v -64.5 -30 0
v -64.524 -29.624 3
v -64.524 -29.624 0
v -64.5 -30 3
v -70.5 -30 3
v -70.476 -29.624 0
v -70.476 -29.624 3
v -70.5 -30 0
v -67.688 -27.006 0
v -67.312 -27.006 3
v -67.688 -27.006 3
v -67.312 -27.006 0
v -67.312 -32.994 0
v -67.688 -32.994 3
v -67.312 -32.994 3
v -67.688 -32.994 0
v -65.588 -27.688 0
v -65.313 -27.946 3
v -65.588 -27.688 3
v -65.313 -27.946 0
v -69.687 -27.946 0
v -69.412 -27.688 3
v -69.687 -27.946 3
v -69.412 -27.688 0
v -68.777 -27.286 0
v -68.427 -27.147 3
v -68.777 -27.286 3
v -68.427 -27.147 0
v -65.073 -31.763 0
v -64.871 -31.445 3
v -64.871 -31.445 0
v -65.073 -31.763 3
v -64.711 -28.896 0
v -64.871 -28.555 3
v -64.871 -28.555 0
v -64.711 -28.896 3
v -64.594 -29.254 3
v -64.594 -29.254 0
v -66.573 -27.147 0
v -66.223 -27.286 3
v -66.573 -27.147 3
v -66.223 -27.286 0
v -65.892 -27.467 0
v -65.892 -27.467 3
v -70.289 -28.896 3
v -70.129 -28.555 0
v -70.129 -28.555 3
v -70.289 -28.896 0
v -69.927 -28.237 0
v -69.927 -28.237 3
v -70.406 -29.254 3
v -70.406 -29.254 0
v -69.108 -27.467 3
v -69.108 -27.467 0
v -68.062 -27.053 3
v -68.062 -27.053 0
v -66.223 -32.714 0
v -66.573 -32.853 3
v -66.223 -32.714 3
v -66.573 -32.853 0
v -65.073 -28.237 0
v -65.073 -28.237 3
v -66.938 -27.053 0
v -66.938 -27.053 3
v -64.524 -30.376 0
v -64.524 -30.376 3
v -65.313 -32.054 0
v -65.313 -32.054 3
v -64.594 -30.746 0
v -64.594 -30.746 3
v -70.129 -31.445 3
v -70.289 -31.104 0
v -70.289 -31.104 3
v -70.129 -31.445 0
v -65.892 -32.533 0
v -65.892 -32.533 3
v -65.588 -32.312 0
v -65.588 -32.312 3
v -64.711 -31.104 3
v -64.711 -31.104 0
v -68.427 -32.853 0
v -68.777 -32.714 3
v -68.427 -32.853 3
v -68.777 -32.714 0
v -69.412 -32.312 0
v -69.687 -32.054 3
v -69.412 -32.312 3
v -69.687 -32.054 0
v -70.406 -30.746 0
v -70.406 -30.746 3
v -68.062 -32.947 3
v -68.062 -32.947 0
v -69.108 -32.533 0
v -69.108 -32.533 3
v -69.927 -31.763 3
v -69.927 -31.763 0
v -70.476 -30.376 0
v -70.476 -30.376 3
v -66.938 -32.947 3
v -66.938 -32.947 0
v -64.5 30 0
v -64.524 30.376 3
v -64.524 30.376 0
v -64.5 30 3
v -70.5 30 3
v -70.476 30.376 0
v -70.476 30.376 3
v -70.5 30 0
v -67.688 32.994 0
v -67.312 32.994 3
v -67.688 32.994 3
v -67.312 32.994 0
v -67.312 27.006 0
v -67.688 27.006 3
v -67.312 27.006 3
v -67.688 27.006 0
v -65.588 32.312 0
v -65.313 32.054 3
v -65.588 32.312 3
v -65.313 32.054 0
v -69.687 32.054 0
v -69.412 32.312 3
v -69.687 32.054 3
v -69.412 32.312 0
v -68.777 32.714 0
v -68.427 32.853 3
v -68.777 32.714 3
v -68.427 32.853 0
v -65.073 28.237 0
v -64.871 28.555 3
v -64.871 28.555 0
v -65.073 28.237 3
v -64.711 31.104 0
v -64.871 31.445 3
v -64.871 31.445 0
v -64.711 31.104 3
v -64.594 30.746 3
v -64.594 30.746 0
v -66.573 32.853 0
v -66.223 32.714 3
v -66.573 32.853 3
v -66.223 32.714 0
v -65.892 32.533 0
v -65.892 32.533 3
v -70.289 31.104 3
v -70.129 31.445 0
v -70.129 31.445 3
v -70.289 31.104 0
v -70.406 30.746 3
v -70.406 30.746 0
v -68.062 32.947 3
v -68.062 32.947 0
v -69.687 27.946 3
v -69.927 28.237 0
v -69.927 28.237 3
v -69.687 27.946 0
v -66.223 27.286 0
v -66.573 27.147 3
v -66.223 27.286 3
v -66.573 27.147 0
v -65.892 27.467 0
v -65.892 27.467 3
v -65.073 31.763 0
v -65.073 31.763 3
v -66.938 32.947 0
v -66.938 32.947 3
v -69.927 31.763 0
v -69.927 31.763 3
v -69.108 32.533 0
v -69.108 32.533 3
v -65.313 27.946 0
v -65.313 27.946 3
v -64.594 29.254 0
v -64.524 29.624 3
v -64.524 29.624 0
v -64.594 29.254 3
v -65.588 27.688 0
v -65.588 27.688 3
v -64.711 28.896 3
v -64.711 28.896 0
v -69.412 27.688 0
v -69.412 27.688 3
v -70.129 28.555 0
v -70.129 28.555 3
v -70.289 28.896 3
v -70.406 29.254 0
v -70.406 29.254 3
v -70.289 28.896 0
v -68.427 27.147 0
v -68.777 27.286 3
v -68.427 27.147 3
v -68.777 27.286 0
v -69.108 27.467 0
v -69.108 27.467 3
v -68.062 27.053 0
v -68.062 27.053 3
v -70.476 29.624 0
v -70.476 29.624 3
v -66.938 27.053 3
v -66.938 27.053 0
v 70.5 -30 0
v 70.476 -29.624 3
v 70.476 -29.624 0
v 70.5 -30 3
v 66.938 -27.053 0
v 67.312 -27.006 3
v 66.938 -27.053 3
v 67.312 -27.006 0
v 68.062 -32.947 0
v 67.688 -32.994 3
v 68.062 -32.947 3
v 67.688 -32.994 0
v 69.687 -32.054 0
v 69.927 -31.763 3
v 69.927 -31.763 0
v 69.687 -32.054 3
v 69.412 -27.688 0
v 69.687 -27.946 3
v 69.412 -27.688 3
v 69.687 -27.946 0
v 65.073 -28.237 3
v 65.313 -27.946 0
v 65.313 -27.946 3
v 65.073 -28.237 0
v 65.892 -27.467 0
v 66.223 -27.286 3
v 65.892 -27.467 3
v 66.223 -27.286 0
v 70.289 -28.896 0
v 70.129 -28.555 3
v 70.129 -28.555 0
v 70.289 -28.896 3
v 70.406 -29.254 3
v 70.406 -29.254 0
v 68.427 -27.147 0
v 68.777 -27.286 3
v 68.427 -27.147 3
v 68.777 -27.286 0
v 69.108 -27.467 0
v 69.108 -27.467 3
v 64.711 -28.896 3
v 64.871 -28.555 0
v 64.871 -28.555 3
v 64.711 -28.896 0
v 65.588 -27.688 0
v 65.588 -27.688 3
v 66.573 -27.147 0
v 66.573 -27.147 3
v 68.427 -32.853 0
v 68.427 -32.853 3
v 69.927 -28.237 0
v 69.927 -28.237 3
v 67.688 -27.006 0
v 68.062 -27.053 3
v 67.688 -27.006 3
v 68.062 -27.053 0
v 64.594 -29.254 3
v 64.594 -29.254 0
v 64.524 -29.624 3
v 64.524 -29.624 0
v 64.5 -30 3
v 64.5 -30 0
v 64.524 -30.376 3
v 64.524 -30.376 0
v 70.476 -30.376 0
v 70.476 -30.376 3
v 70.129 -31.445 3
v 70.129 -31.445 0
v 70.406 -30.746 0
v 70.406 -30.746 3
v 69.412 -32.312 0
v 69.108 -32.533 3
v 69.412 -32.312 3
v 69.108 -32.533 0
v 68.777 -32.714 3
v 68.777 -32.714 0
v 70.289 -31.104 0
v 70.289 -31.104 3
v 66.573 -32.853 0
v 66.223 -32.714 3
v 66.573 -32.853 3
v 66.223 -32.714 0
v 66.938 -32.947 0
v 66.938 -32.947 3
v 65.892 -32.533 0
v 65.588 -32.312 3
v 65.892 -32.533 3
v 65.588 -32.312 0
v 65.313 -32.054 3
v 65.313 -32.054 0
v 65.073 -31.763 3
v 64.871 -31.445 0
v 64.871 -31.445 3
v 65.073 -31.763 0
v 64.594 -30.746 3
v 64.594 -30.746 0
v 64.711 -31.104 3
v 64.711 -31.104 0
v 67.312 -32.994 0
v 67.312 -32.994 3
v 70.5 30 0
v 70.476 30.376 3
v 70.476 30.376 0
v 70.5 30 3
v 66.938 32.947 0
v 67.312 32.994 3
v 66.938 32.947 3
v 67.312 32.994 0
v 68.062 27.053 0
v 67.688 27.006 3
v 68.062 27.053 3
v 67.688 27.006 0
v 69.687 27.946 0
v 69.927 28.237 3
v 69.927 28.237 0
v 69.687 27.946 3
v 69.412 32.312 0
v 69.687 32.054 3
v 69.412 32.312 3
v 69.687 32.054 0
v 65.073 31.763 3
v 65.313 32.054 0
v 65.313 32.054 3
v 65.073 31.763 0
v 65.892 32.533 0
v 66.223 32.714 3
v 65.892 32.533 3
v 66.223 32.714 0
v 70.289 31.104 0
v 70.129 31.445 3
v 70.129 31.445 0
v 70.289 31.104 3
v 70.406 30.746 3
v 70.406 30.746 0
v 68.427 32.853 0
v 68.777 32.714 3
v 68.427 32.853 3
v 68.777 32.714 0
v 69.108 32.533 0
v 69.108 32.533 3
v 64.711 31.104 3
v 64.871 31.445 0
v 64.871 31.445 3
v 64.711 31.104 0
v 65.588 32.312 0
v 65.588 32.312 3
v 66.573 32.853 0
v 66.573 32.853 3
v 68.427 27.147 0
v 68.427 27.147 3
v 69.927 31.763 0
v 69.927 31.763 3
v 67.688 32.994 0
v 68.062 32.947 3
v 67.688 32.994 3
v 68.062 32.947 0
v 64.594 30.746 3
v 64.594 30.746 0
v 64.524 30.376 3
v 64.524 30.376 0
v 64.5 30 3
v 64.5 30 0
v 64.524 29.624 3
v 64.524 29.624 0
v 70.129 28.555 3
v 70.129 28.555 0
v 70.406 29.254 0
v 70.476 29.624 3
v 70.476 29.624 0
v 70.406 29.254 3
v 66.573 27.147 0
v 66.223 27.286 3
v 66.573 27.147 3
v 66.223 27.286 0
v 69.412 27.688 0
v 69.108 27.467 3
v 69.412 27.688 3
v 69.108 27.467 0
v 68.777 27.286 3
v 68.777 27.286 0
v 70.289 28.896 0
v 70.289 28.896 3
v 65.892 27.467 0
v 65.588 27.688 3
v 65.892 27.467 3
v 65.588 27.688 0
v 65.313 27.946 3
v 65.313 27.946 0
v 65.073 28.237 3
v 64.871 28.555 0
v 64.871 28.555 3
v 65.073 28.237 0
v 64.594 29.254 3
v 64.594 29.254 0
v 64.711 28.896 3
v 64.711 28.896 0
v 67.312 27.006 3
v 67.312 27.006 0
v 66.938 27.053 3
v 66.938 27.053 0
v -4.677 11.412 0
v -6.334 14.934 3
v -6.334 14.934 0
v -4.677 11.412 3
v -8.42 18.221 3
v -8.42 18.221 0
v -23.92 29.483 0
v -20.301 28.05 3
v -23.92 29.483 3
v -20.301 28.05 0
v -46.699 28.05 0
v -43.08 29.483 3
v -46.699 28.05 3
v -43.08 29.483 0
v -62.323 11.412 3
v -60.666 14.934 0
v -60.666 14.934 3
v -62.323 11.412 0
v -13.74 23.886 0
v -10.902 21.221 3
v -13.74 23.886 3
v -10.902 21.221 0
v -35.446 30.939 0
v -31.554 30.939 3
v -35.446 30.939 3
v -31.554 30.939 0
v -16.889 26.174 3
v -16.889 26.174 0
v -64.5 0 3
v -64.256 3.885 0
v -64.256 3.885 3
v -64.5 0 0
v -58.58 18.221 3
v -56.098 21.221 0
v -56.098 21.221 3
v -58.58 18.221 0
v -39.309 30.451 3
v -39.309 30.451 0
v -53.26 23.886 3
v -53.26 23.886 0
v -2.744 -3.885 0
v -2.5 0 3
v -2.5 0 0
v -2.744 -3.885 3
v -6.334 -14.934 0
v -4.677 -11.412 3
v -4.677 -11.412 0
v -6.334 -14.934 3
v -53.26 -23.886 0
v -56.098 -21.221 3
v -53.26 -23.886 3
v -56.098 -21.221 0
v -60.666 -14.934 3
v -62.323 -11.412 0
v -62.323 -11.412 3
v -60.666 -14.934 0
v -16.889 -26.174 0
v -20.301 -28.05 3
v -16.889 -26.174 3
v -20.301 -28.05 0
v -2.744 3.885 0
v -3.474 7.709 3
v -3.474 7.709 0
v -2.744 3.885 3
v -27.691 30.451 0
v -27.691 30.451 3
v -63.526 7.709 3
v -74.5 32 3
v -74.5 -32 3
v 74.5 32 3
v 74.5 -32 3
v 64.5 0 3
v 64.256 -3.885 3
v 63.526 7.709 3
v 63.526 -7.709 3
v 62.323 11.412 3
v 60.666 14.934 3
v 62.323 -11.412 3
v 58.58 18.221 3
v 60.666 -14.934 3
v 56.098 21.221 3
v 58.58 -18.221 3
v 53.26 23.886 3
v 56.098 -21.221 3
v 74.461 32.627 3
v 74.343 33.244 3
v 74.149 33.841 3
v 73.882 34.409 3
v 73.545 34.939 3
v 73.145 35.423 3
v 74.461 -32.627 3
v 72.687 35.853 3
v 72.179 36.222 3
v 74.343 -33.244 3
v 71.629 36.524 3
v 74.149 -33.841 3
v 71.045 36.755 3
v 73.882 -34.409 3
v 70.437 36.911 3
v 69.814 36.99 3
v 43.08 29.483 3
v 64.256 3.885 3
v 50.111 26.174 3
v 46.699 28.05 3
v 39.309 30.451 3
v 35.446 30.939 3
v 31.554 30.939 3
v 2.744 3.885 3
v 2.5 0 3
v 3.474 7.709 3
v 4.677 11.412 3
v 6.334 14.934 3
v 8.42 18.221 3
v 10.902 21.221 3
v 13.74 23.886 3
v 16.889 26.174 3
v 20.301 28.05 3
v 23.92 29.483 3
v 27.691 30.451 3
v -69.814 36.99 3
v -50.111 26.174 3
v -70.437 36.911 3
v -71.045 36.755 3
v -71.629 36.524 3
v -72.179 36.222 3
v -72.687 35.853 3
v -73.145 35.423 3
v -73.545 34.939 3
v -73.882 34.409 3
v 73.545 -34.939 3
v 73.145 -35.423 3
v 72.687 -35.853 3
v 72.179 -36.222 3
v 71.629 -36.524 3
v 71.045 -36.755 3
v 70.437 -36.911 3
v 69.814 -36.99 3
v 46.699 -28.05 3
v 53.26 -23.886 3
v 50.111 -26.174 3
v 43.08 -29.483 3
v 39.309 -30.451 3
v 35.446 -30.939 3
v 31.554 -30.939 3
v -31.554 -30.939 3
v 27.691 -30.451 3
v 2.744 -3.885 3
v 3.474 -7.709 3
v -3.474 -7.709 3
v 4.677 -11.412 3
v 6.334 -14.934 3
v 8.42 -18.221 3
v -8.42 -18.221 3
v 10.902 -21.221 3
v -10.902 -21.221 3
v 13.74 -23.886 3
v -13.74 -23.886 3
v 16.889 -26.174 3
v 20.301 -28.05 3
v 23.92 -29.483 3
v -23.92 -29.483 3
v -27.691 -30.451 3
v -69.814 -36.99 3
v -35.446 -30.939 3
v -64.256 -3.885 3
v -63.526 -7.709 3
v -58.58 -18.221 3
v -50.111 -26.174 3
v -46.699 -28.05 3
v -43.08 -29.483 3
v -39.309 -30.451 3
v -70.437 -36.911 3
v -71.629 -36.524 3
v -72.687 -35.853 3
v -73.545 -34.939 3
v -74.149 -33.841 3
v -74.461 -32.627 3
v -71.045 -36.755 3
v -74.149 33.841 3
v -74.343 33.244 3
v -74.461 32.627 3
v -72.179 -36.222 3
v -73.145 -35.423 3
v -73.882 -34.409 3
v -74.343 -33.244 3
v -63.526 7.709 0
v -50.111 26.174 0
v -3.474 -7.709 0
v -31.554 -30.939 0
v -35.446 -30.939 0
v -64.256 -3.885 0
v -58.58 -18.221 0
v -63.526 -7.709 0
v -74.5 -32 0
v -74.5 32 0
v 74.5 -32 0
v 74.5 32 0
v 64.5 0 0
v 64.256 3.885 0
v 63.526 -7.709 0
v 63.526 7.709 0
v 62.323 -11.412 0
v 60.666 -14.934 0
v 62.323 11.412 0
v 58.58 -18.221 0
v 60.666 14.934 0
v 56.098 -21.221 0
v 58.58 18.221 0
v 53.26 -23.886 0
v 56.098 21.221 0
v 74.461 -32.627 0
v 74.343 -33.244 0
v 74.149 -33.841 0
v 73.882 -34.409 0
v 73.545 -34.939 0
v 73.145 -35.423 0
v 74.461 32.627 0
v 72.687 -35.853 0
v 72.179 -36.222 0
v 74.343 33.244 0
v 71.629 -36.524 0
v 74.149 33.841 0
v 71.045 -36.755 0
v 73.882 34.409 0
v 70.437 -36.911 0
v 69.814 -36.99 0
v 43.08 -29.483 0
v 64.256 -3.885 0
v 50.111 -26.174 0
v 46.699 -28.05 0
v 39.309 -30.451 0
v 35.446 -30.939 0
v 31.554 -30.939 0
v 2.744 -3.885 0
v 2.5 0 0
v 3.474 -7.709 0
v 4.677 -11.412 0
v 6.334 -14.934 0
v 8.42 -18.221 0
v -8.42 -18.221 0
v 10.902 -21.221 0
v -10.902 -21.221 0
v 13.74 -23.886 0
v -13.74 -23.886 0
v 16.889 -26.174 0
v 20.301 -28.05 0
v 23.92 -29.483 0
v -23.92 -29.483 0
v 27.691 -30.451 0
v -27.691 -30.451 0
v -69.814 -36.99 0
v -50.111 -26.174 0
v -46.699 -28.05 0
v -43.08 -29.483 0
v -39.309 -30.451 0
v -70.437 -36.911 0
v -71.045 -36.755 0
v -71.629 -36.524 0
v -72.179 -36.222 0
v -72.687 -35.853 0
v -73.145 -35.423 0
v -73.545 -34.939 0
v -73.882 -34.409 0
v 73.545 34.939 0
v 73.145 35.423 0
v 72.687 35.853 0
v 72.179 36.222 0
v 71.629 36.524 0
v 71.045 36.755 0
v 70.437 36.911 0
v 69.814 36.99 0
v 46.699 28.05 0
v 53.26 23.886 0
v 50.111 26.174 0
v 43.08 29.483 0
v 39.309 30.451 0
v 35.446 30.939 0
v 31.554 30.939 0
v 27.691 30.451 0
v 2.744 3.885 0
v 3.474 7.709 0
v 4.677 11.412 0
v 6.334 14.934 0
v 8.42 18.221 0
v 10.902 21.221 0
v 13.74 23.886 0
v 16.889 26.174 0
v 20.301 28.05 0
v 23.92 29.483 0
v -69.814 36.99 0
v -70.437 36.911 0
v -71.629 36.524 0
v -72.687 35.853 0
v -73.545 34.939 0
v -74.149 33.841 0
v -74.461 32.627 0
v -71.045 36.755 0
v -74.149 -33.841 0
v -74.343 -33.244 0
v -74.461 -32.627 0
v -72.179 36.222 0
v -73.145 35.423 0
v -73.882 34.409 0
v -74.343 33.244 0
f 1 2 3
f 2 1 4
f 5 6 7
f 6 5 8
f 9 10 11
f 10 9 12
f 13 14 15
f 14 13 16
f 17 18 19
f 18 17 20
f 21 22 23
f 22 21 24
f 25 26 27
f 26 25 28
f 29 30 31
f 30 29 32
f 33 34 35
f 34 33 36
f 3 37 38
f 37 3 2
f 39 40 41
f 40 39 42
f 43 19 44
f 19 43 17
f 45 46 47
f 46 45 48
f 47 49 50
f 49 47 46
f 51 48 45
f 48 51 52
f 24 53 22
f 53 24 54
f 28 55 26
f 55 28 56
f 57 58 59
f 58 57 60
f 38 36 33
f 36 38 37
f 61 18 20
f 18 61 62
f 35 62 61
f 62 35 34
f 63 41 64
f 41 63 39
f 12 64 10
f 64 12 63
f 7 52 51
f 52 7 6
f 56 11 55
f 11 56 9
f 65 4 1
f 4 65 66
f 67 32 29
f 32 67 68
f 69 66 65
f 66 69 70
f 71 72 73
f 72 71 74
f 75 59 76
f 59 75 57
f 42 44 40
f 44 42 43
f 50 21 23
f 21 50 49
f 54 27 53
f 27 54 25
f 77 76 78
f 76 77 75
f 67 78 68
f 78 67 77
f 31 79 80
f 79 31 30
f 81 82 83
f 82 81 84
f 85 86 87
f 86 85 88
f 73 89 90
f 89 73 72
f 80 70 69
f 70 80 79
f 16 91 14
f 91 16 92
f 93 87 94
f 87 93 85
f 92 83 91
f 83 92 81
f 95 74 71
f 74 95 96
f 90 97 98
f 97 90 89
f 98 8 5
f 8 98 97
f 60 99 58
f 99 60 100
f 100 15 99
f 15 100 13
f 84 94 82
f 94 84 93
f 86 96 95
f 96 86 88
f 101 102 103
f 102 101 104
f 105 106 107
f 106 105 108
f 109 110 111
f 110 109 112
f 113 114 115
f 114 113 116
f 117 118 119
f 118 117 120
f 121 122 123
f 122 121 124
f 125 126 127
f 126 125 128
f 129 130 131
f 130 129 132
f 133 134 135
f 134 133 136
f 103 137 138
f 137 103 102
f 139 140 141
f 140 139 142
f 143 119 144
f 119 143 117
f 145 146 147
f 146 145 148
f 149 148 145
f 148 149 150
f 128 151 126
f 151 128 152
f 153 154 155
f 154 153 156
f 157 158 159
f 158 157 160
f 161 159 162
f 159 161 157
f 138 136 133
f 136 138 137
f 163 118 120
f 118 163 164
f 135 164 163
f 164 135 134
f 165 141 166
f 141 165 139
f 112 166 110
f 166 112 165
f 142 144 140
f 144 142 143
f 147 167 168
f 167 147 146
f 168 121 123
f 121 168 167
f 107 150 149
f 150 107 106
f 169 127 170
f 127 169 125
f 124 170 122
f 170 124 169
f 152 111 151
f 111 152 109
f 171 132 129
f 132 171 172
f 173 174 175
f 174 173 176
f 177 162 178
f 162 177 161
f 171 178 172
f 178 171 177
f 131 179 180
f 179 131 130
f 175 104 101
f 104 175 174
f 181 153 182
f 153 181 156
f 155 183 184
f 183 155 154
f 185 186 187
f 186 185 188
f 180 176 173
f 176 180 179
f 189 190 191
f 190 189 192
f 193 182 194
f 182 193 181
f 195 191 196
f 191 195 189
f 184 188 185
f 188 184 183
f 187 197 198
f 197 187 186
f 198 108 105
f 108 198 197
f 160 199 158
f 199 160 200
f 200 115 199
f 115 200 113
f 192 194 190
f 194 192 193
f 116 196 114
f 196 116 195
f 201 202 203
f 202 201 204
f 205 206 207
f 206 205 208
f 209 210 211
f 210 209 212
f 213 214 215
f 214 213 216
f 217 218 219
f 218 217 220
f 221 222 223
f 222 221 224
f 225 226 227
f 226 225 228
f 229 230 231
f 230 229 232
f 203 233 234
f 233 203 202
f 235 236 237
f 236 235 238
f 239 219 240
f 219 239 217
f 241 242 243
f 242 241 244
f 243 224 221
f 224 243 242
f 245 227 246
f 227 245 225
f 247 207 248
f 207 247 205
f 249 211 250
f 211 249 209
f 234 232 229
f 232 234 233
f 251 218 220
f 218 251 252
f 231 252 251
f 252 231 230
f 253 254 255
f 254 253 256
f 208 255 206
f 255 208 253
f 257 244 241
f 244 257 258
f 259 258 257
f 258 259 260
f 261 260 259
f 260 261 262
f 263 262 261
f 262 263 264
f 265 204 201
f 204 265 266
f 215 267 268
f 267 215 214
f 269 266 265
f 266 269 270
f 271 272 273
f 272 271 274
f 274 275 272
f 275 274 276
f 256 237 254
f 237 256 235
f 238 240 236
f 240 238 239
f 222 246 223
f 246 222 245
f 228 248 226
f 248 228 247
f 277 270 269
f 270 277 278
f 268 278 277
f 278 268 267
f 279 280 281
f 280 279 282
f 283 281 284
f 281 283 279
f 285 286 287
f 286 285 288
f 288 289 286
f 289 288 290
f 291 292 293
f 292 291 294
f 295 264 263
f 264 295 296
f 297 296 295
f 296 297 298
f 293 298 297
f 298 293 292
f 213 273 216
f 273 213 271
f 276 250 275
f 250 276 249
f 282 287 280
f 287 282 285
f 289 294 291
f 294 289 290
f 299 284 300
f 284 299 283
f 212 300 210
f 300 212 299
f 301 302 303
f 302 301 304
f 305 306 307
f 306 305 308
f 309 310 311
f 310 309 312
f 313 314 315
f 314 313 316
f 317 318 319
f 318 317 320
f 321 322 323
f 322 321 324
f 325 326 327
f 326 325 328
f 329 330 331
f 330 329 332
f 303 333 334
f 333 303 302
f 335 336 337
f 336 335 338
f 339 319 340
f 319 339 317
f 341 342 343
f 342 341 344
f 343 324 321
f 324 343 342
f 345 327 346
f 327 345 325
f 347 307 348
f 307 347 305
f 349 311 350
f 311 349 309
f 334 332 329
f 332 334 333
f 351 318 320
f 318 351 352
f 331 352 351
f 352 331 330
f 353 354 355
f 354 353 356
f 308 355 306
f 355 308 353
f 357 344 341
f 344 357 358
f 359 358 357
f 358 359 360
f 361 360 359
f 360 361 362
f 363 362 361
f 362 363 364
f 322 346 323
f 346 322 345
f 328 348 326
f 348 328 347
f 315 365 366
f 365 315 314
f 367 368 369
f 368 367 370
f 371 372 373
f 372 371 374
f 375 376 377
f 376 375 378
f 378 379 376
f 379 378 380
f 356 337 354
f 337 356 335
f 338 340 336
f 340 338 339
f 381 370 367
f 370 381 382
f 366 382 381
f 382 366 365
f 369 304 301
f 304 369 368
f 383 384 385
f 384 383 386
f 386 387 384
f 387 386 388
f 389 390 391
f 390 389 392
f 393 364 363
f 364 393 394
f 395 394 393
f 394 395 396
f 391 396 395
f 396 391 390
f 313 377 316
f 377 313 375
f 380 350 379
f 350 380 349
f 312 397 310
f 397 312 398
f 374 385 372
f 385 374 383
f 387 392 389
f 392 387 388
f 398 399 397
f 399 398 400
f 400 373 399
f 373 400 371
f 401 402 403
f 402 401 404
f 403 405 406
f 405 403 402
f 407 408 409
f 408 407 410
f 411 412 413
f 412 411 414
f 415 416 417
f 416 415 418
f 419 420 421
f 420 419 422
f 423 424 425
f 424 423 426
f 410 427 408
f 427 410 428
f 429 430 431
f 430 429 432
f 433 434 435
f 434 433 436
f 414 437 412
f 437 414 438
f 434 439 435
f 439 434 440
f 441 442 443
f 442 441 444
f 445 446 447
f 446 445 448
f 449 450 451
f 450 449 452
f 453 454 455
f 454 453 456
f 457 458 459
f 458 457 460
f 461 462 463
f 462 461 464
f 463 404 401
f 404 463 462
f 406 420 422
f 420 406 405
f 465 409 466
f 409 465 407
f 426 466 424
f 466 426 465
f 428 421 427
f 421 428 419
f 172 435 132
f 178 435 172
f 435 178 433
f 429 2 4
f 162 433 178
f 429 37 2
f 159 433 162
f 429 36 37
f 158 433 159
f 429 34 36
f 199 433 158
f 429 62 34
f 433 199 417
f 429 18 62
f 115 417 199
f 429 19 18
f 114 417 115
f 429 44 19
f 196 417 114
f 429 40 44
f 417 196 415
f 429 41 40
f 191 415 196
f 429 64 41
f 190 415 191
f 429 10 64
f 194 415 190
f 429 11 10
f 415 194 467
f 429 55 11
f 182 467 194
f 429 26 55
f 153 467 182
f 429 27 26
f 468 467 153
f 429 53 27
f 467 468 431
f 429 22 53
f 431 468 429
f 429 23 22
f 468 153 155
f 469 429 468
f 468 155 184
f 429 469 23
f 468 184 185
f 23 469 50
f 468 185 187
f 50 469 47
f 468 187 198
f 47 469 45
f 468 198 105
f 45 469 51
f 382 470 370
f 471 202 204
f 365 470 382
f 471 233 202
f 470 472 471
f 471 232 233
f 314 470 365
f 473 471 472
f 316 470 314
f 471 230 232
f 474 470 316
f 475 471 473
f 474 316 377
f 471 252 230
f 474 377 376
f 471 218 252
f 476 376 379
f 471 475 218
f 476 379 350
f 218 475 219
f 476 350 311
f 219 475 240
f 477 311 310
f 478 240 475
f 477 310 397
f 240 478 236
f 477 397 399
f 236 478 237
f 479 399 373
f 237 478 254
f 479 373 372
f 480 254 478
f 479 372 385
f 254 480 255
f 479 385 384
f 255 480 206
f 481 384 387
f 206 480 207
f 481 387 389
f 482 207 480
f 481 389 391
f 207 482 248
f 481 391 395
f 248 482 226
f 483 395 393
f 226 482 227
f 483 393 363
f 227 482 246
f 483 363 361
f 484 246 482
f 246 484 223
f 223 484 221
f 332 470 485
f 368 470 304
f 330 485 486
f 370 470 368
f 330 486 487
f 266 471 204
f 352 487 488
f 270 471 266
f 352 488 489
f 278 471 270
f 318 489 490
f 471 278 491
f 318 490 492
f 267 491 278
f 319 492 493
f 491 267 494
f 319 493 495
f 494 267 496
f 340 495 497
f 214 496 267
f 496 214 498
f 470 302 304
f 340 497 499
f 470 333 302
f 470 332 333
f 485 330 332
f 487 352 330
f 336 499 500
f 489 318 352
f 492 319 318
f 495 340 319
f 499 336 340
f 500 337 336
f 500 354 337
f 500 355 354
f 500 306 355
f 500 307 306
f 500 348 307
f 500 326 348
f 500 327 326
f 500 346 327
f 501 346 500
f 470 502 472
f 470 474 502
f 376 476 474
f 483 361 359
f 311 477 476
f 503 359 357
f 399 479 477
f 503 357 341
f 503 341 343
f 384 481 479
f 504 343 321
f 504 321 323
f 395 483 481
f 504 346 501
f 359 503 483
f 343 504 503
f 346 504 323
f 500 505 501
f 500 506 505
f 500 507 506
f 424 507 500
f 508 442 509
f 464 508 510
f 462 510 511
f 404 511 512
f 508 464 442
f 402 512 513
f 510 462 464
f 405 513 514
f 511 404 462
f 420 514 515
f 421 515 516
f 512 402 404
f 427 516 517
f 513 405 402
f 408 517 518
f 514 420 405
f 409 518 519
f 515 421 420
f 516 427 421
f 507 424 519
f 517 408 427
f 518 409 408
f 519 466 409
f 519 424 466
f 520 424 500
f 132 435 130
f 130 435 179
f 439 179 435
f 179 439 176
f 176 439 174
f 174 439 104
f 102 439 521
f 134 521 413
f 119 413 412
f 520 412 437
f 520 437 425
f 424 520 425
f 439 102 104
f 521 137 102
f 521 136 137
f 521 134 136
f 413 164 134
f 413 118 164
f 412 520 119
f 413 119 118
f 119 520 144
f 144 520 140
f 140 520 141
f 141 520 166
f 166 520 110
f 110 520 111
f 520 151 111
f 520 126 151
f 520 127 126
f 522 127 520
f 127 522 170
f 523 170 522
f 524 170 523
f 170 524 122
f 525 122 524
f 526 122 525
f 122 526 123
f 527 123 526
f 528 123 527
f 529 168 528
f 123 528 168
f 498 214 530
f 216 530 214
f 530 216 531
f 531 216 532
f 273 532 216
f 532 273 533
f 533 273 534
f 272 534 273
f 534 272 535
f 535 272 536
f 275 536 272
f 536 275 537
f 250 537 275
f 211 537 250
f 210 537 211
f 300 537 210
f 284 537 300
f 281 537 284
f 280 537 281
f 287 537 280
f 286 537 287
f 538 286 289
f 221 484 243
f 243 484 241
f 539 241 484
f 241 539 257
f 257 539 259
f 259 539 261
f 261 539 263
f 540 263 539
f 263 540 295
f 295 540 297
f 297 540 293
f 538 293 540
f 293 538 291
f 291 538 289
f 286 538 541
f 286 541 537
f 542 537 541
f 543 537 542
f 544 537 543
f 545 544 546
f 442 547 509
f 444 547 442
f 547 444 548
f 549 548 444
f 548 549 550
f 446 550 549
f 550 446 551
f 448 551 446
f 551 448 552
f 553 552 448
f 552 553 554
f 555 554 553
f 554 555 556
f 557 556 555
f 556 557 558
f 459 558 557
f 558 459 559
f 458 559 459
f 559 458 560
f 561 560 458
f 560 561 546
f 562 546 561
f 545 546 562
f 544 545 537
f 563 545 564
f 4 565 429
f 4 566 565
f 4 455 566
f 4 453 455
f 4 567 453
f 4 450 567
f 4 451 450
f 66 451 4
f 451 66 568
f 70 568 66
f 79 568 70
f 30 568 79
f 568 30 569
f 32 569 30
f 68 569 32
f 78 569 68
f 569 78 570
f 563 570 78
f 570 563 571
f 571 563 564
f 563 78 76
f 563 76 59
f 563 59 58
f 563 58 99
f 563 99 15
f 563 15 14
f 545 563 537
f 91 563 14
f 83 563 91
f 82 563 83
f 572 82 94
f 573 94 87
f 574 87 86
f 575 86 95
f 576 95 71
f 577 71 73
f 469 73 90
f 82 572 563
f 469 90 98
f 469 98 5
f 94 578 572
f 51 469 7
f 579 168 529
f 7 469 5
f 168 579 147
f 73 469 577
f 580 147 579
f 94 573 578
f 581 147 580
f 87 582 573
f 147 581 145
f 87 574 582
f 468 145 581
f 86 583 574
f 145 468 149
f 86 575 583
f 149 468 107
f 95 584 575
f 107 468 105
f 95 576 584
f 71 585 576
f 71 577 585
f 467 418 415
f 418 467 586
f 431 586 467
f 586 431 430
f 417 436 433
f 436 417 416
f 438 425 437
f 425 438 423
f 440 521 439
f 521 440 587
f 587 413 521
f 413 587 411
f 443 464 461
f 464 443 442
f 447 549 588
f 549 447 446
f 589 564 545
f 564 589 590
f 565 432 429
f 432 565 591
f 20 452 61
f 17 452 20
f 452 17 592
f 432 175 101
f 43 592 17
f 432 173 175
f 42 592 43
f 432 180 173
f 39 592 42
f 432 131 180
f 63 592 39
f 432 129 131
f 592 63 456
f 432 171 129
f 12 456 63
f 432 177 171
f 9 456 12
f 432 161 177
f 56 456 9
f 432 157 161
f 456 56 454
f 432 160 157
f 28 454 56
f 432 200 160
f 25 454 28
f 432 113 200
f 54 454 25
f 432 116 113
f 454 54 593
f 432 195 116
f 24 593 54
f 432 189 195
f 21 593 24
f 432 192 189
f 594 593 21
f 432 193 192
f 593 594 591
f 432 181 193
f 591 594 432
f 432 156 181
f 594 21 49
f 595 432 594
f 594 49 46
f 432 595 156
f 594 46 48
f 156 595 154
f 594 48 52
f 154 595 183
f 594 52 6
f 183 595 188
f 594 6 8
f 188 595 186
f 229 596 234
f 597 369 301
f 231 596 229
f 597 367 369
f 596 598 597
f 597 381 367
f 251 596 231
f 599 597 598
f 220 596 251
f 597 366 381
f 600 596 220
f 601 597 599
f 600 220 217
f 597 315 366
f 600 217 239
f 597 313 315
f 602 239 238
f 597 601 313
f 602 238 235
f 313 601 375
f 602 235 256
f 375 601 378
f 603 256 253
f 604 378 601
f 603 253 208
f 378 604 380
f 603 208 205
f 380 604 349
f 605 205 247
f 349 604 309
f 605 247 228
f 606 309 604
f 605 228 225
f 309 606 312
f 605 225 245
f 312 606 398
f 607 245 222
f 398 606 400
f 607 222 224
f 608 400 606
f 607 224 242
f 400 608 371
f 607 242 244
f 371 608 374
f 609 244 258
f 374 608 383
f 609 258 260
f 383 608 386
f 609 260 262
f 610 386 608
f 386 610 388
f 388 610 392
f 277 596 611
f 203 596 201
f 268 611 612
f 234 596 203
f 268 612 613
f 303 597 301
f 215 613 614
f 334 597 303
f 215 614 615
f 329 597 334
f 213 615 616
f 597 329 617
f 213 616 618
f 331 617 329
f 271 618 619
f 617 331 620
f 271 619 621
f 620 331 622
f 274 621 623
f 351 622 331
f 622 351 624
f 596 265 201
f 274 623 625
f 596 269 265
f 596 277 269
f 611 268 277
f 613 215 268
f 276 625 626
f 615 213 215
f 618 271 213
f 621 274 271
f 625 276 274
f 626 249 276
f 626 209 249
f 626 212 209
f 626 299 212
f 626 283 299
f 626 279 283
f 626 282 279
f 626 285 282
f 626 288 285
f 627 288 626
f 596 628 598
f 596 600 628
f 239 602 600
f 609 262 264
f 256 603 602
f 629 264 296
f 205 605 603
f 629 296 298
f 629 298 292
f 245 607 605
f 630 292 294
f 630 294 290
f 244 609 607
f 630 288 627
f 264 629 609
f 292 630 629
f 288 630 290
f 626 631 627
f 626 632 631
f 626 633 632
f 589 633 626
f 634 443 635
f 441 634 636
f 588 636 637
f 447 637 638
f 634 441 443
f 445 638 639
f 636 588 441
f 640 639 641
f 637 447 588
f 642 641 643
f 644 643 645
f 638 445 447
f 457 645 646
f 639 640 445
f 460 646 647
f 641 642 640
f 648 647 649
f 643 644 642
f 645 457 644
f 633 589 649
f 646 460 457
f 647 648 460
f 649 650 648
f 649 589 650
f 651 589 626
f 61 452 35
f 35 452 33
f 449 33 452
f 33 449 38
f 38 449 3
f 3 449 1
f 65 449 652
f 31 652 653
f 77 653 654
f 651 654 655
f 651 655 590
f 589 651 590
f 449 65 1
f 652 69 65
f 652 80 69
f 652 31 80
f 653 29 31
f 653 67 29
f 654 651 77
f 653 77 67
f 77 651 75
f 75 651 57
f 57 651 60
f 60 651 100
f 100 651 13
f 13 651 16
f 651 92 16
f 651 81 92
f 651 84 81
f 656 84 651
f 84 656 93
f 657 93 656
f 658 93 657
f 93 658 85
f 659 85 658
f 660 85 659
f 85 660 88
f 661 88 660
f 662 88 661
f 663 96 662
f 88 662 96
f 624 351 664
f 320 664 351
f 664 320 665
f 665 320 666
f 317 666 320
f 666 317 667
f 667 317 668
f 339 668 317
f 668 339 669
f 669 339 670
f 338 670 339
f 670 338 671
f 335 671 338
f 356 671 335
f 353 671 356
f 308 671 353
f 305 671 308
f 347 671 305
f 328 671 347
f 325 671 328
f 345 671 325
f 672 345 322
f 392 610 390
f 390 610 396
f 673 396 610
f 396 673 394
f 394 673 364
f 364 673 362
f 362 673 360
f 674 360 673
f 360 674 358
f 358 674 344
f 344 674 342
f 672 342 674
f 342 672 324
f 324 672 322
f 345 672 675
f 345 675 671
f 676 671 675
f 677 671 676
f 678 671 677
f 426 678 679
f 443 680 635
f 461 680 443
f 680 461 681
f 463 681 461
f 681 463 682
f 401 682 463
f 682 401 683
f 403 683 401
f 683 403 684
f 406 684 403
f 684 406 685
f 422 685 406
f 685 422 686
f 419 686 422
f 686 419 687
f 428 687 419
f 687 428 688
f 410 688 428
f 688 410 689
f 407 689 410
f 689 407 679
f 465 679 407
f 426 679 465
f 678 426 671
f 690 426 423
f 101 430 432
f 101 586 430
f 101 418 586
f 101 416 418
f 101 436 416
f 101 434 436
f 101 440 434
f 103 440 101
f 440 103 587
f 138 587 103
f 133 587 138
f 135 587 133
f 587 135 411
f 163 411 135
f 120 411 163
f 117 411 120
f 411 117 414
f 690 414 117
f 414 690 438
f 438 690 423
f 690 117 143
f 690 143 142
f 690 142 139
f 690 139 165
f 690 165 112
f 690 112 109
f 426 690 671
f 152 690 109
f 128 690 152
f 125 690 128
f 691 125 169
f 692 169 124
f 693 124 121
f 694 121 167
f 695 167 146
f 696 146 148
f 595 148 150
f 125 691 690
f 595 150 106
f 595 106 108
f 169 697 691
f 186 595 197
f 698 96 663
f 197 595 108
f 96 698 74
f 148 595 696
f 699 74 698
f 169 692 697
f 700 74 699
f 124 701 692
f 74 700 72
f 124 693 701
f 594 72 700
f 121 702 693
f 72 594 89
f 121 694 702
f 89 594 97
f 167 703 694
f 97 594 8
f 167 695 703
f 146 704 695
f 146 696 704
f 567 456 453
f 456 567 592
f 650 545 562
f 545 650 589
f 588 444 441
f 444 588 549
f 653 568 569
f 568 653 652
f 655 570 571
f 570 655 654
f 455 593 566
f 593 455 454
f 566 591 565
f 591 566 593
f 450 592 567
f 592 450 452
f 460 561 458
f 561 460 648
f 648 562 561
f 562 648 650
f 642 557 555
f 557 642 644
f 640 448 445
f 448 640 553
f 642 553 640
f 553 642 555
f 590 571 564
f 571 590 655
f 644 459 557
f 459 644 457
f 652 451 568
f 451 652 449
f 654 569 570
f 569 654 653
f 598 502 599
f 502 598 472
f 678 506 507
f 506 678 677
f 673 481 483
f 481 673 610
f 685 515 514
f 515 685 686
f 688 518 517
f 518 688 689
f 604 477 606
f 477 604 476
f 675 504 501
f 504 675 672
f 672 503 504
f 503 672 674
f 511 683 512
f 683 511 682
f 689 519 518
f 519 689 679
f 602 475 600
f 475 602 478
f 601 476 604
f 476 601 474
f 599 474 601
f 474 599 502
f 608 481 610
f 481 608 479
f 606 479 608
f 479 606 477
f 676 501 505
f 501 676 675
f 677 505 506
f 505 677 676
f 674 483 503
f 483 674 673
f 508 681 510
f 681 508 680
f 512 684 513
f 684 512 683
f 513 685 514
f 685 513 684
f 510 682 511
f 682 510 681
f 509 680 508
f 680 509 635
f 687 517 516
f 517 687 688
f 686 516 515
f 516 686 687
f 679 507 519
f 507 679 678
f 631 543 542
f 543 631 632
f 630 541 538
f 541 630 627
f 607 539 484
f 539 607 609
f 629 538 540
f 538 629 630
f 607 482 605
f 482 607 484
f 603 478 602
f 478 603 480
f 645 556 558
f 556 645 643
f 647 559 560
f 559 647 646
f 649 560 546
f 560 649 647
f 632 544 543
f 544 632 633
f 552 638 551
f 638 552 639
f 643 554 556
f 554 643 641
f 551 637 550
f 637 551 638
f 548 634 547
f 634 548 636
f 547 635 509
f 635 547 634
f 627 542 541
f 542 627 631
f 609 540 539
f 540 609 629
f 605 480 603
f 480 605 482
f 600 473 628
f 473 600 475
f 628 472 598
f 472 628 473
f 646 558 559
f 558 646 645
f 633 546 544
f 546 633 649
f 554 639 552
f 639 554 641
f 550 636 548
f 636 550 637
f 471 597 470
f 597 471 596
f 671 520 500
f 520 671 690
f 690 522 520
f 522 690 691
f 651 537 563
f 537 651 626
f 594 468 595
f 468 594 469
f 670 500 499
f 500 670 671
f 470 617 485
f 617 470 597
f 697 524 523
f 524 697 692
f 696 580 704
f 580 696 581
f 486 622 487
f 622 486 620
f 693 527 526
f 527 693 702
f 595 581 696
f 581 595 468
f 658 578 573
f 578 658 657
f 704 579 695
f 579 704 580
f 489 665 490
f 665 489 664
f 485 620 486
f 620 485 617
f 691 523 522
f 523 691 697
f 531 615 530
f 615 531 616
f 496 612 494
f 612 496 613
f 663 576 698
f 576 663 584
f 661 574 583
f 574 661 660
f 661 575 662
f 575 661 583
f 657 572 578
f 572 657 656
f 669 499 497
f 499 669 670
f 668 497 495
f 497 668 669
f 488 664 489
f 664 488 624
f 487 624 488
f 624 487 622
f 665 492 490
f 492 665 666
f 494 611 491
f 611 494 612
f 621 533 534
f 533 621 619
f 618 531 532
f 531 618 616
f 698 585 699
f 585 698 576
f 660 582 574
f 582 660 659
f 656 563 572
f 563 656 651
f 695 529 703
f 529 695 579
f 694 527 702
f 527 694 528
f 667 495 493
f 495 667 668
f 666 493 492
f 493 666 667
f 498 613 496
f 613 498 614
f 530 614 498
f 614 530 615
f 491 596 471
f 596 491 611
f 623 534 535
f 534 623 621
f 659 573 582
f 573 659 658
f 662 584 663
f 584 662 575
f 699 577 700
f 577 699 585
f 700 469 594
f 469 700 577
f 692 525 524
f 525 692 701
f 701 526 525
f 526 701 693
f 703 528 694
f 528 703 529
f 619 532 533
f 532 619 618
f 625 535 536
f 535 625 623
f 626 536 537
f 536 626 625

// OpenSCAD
$fn = 50;


difference() {
	union() {
		hull() {
			translate(v = [-69.5000000000, 32.0000000000, 0]) {
				cylinder(h = 3, r = 5);
			}
			translate(v = [69.5000000000, 32.0000000000, 0]) {
				cylinder(h = 3, r = 5);
			}
			translate(v = [-69.5000000000, -32.0000000000, 0]) {
				cylinder(h = 3, r = 5);
			}
			translate(v = [69.5000000000, -32.0000000000, 0]) {
				cylinder(h = 3, r = 5);
			}
		}
	}
	union() {
		#translate(v = [-67.5000000000, -30.0000000000, -100.0000000000]) {
			cylinder(h = 200, r = 3.0000000000);
		}
		#translate(v = [-67.5000000000, 30.0000000000, -100.0000000000]) {
			cylinder(h = 200, r = 3.0000000000);
		}
		#translate(v = [67.5000000000, -30.0000000000, -100.0000000000]) {
			cylinder(h = 200, r = 3.0000000000);
		}
		#translate(v = [67.5000000000, 30.0000000000, -100.0000000000]) {
			cylinder(h = 200, r = 3.0000000000);
		}
		#translate(v = [-33.5000000000, 0, 0]) {
			cylinder(h = 3, r = 31.0000000000);
		}
		#translate(v = [33.5000000000, 0, 0]) {
			cylinder(h = 3, r = 31.0000000000);
		}
	}
}
